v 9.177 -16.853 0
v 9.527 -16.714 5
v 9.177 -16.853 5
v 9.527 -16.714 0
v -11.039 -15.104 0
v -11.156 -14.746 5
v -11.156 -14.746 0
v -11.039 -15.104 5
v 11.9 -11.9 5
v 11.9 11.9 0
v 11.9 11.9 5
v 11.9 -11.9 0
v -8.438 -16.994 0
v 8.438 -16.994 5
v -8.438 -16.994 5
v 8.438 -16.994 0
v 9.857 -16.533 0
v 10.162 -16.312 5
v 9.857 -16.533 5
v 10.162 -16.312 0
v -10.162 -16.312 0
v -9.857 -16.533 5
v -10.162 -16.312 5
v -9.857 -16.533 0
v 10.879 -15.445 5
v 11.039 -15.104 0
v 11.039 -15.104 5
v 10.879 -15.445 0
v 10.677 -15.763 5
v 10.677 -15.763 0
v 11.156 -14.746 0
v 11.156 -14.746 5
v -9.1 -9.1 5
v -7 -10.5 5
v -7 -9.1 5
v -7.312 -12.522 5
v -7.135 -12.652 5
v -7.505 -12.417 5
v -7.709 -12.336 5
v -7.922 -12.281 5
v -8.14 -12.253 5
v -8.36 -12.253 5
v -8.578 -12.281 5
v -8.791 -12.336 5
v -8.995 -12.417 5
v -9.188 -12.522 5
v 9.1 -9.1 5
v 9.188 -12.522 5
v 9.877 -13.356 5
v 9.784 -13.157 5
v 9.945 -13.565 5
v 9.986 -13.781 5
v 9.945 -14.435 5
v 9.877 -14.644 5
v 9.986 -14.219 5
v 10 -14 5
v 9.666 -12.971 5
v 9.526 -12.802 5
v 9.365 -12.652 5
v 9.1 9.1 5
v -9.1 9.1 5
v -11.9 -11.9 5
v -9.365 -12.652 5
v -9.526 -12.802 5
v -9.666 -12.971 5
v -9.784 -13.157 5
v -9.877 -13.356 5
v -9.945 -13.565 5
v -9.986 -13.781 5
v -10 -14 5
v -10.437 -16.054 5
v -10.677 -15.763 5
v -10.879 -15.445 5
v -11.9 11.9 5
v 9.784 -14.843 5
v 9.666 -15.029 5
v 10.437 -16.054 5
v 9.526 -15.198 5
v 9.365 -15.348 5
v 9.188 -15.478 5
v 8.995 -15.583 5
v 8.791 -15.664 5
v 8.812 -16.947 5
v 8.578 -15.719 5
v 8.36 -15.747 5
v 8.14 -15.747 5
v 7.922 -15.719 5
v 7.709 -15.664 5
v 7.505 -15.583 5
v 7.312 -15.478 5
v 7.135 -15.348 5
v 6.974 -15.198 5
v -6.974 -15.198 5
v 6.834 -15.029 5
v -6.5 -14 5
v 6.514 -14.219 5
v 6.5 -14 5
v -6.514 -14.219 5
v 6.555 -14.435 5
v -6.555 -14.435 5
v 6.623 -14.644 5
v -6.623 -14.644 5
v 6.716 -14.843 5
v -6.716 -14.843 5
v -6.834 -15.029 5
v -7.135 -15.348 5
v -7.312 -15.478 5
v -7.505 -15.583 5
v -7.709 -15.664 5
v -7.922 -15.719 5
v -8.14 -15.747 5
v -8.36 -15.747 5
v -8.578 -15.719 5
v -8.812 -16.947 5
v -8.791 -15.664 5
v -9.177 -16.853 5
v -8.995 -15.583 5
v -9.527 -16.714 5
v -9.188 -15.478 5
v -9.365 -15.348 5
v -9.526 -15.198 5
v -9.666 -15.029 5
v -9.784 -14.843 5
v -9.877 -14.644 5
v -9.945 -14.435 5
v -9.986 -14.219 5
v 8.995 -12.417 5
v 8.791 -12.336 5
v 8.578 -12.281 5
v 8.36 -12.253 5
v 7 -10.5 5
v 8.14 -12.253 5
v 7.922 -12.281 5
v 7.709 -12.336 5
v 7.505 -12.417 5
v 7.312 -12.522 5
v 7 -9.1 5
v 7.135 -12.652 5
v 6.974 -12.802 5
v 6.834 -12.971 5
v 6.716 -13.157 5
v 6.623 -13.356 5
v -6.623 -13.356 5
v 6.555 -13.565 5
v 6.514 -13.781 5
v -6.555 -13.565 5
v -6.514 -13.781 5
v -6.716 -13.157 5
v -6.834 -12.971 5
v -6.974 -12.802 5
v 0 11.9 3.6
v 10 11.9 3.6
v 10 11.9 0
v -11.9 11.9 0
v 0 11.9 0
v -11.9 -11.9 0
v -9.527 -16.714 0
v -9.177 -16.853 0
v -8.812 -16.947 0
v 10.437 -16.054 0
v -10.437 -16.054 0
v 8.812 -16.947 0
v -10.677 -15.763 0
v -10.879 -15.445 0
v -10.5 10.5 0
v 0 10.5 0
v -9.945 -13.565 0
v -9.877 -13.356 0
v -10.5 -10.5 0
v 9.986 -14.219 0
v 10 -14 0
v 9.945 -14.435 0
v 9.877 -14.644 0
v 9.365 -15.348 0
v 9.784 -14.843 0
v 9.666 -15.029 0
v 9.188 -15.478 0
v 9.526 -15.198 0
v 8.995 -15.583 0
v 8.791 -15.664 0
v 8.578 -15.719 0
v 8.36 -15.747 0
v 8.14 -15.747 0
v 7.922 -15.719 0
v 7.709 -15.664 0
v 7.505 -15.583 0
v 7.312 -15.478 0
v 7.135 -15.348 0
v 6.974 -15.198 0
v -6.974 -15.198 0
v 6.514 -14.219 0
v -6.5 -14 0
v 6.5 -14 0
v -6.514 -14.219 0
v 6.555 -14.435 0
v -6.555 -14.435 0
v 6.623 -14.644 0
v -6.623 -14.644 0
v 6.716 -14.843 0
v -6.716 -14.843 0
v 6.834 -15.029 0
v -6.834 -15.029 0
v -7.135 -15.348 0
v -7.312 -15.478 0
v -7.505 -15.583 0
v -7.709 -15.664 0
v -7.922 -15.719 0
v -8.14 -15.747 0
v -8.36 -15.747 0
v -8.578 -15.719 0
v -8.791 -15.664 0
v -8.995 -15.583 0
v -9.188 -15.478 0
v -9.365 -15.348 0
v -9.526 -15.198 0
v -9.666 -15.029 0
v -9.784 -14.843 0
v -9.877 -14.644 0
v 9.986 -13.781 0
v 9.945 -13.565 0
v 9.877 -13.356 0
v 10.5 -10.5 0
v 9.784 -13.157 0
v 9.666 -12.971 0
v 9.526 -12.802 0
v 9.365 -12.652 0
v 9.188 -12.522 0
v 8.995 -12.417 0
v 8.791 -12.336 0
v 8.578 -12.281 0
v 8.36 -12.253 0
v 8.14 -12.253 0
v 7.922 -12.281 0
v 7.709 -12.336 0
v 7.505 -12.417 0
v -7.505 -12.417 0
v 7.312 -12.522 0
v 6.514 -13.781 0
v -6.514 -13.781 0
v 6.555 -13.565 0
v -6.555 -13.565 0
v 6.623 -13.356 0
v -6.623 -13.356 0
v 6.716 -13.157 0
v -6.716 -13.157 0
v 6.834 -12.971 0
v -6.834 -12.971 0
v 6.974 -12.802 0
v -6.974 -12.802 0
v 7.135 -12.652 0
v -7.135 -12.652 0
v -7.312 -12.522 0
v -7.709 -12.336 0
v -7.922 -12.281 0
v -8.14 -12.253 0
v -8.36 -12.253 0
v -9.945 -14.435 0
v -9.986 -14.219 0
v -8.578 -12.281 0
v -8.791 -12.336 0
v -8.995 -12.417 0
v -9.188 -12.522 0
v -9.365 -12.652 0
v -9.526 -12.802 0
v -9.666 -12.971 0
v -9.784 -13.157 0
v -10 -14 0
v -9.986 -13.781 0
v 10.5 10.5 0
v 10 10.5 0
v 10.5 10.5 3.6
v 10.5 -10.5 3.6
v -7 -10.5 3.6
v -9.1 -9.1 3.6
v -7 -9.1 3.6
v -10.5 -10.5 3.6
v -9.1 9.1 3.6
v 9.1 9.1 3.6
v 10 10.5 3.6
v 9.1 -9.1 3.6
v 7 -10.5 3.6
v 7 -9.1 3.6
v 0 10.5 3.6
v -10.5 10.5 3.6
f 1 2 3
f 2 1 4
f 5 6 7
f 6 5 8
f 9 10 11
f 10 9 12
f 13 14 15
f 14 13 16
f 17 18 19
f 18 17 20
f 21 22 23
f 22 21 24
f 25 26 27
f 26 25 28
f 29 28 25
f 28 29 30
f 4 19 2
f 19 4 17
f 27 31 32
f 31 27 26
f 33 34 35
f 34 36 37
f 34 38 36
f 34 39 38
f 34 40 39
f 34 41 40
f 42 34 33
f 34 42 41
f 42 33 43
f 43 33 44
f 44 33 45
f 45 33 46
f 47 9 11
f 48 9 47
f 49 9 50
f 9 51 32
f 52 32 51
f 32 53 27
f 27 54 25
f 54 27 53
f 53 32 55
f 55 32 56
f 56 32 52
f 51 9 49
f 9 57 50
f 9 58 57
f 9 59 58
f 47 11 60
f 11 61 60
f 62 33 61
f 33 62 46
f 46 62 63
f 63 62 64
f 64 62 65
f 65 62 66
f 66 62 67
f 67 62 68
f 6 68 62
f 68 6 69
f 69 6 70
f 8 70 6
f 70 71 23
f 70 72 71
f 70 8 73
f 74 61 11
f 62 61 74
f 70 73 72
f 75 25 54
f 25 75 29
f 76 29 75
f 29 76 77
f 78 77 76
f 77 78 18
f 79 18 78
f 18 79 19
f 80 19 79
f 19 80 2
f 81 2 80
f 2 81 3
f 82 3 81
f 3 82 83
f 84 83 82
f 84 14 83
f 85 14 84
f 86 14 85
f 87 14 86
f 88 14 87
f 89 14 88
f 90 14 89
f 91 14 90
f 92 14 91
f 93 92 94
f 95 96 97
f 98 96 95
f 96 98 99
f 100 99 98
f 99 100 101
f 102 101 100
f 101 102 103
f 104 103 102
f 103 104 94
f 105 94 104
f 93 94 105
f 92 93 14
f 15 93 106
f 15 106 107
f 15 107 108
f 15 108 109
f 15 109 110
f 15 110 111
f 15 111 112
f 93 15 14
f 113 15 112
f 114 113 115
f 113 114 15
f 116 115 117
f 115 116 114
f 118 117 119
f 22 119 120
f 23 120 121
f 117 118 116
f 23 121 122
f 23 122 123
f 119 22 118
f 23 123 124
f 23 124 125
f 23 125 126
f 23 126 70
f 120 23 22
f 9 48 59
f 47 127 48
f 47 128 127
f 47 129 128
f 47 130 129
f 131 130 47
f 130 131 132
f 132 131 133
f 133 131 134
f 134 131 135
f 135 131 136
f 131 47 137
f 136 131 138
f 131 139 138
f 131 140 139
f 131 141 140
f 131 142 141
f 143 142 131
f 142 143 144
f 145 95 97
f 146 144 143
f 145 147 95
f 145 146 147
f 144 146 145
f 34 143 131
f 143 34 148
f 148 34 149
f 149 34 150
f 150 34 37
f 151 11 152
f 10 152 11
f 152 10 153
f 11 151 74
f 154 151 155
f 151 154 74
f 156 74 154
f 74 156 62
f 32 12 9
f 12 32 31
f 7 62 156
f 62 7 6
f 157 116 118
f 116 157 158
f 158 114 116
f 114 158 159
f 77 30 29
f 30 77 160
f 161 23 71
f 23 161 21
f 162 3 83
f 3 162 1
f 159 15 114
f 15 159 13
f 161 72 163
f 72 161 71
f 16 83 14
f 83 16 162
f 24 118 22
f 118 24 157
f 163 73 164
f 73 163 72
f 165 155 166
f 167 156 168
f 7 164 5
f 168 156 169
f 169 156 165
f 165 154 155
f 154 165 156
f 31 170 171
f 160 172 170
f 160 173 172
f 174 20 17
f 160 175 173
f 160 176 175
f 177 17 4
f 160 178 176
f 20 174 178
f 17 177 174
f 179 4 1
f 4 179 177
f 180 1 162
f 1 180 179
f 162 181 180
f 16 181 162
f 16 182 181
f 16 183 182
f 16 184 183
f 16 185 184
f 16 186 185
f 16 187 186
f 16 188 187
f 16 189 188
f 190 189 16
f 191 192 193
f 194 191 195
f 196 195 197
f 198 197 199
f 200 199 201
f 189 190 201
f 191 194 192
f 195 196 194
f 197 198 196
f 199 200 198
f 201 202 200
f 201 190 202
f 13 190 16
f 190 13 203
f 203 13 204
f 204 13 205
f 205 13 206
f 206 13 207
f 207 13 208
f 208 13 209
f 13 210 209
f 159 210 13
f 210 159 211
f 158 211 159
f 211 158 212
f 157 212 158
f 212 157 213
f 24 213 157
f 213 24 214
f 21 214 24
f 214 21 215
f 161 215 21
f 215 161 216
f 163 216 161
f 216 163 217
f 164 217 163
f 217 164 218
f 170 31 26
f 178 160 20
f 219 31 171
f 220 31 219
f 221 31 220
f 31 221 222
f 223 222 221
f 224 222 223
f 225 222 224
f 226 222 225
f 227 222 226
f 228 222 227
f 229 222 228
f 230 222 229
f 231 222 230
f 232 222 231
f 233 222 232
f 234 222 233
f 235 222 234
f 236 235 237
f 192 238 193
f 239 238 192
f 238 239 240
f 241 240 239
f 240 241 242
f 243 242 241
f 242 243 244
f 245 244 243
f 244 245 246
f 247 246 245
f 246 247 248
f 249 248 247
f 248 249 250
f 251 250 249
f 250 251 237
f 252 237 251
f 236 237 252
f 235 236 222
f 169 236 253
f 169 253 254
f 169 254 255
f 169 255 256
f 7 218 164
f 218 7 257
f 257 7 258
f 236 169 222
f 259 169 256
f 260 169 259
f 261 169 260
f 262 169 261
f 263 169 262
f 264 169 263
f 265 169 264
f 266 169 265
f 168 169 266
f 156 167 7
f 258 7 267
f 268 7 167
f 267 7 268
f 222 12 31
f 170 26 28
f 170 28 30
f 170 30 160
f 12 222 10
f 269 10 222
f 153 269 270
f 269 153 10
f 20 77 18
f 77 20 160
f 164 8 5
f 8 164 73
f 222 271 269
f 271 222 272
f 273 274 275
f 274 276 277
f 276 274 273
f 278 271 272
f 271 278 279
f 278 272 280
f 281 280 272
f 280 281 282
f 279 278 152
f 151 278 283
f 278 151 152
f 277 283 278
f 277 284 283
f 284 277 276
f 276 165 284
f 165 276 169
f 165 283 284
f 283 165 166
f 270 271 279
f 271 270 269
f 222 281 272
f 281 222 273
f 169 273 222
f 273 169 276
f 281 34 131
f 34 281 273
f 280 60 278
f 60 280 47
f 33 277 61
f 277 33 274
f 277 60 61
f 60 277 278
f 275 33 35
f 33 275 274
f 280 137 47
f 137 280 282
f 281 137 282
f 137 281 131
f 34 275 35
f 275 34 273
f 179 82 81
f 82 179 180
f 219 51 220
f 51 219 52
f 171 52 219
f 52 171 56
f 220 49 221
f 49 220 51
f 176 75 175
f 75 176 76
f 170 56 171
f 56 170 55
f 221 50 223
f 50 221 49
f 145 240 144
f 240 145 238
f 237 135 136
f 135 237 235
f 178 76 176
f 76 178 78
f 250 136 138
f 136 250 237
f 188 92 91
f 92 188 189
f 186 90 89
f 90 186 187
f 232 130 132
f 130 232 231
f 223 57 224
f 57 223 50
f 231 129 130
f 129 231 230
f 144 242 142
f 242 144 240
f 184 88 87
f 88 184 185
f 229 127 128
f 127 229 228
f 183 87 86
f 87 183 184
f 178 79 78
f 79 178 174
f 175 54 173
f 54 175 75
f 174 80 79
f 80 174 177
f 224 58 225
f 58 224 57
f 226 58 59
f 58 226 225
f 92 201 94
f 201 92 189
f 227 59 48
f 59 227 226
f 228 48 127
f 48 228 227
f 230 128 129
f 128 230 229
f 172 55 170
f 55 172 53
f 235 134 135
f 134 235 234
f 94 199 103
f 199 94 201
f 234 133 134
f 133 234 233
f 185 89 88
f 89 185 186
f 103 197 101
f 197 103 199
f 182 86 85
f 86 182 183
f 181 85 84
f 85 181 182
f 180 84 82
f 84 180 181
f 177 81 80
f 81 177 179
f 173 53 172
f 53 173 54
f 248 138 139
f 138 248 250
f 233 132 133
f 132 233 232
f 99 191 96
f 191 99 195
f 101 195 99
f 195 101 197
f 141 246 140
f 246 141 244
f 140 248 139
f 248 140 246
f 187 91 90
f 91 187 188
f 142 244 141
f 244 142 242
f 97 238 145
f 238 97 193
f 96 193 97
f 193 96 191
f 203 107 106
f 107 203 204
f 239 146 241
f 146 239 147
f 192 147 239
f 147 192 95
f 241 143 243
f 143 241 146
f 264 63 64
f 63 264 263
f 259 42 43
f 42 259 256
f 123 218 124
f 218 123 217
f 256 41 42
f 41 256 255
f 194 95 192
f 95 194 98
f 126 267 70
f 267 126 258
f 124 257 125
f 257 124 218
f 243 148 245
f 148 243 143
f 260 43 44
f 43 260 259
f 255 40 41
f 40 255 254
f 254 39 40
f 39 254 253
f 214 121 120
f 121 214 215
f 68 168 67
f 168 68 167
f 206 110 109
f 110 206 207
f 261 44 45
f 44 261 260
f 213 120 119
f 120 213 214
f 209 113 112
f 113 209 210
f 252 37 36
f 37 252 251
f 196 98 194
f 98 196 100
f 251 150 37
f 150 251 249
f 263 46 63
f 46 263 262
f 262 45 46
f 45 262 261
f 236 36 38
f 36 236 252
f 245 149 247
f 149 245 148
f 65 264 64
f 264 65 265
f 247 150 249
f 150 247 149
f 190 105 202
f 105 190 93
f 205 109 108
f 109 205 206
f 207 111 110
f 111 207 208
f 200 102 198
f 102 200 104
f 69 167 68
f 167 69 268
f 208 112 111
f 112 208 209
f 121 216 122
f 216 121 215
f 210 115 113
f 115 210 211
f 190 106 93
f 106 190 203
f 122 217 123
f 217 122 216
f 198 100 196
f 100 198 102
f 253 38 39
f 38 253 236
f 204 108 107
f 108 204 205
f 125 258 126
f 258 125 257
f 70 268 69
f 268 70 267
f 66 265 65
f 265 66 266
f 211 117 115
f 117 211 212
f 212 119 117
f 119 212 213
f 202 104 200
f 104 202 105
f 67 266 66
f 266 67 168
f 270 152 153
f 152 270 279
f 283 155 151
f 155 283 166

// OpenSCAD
$fn=50;
pcbx = 21;
pcby = 21;
pcbz = 5;

ww = 1.4;
pitch = 16.5;
holeod = 6;
holeid = 3.5;

/*
difference() {
    translate([0,0,pcbz/2]) cube([pcbx+ww*2, pcby+ww*2, pcbz], center=true);
    translate([0,0,pcbz/2-ww]) cube([pcbx, pcby, pcbz], center=true);
    translate([0,0,pcbz/2-ww]) cube([pcbx-ww*2, pcby-ww*2, pcbz+5], center=true);
    translate([10,-5,0]) cube([10,10,10], center=true);
}

translate([pitch/2,-14,pcbz/2]) {
difference() {
translate([0,0,0]) cylinder(h=pcbz,r=5.5/2, center=true);
translate([0,0,0]) cylinder(h=pcbz+2,r=3.5/2, center=true);
}}

translate([-pitch/2,-14,pcbz/2]) {
difference() {
translate([0,0,0]) cylinder(h=pcbz,r=5.5/2, center=true);
translate([0,0,0]) cylinder(h=pcbz+2,r=3.5/2, center=true);
}}
*/

difference() {
hull() {
translate([0,0,pcbz/2]) cube([pcbx+ww*2, pcby+ww*2, pcbz], center=true);
translate([-pitch/2,-14,pcbz/2]) cylinder(h=pcbz,r=holeod/2, center=true);
translate([pitch/2,-14,pcbz/2]) cylinder(h=pcbz,r=holeod/2, center=true);
}
translate([0,0,pcbz/2-ww]) cube([pcbx, pcby, pcbz], center=true);
translate([0,0,pcbz/2-ww]) cube([pcbx-ww*2, pcby-ww*2, pcbz+5], center=true);
translate([0,-ww,pcbz/2-ww]) cube([pcbx-ww*5, pcby-ww*2, pcbz+5], center=true);
translate([pitch/2,-14,pcbz/2]) cylinder(h=pcbz+2,r=3.5/2, center=true);
translate([-pitch/2,-14,pcbz/2]) cylinder(h=pcbz+2,r=3.5/2, center=true);
translate([5,10,0]) cube([10,10,7.2], center=true);
}
